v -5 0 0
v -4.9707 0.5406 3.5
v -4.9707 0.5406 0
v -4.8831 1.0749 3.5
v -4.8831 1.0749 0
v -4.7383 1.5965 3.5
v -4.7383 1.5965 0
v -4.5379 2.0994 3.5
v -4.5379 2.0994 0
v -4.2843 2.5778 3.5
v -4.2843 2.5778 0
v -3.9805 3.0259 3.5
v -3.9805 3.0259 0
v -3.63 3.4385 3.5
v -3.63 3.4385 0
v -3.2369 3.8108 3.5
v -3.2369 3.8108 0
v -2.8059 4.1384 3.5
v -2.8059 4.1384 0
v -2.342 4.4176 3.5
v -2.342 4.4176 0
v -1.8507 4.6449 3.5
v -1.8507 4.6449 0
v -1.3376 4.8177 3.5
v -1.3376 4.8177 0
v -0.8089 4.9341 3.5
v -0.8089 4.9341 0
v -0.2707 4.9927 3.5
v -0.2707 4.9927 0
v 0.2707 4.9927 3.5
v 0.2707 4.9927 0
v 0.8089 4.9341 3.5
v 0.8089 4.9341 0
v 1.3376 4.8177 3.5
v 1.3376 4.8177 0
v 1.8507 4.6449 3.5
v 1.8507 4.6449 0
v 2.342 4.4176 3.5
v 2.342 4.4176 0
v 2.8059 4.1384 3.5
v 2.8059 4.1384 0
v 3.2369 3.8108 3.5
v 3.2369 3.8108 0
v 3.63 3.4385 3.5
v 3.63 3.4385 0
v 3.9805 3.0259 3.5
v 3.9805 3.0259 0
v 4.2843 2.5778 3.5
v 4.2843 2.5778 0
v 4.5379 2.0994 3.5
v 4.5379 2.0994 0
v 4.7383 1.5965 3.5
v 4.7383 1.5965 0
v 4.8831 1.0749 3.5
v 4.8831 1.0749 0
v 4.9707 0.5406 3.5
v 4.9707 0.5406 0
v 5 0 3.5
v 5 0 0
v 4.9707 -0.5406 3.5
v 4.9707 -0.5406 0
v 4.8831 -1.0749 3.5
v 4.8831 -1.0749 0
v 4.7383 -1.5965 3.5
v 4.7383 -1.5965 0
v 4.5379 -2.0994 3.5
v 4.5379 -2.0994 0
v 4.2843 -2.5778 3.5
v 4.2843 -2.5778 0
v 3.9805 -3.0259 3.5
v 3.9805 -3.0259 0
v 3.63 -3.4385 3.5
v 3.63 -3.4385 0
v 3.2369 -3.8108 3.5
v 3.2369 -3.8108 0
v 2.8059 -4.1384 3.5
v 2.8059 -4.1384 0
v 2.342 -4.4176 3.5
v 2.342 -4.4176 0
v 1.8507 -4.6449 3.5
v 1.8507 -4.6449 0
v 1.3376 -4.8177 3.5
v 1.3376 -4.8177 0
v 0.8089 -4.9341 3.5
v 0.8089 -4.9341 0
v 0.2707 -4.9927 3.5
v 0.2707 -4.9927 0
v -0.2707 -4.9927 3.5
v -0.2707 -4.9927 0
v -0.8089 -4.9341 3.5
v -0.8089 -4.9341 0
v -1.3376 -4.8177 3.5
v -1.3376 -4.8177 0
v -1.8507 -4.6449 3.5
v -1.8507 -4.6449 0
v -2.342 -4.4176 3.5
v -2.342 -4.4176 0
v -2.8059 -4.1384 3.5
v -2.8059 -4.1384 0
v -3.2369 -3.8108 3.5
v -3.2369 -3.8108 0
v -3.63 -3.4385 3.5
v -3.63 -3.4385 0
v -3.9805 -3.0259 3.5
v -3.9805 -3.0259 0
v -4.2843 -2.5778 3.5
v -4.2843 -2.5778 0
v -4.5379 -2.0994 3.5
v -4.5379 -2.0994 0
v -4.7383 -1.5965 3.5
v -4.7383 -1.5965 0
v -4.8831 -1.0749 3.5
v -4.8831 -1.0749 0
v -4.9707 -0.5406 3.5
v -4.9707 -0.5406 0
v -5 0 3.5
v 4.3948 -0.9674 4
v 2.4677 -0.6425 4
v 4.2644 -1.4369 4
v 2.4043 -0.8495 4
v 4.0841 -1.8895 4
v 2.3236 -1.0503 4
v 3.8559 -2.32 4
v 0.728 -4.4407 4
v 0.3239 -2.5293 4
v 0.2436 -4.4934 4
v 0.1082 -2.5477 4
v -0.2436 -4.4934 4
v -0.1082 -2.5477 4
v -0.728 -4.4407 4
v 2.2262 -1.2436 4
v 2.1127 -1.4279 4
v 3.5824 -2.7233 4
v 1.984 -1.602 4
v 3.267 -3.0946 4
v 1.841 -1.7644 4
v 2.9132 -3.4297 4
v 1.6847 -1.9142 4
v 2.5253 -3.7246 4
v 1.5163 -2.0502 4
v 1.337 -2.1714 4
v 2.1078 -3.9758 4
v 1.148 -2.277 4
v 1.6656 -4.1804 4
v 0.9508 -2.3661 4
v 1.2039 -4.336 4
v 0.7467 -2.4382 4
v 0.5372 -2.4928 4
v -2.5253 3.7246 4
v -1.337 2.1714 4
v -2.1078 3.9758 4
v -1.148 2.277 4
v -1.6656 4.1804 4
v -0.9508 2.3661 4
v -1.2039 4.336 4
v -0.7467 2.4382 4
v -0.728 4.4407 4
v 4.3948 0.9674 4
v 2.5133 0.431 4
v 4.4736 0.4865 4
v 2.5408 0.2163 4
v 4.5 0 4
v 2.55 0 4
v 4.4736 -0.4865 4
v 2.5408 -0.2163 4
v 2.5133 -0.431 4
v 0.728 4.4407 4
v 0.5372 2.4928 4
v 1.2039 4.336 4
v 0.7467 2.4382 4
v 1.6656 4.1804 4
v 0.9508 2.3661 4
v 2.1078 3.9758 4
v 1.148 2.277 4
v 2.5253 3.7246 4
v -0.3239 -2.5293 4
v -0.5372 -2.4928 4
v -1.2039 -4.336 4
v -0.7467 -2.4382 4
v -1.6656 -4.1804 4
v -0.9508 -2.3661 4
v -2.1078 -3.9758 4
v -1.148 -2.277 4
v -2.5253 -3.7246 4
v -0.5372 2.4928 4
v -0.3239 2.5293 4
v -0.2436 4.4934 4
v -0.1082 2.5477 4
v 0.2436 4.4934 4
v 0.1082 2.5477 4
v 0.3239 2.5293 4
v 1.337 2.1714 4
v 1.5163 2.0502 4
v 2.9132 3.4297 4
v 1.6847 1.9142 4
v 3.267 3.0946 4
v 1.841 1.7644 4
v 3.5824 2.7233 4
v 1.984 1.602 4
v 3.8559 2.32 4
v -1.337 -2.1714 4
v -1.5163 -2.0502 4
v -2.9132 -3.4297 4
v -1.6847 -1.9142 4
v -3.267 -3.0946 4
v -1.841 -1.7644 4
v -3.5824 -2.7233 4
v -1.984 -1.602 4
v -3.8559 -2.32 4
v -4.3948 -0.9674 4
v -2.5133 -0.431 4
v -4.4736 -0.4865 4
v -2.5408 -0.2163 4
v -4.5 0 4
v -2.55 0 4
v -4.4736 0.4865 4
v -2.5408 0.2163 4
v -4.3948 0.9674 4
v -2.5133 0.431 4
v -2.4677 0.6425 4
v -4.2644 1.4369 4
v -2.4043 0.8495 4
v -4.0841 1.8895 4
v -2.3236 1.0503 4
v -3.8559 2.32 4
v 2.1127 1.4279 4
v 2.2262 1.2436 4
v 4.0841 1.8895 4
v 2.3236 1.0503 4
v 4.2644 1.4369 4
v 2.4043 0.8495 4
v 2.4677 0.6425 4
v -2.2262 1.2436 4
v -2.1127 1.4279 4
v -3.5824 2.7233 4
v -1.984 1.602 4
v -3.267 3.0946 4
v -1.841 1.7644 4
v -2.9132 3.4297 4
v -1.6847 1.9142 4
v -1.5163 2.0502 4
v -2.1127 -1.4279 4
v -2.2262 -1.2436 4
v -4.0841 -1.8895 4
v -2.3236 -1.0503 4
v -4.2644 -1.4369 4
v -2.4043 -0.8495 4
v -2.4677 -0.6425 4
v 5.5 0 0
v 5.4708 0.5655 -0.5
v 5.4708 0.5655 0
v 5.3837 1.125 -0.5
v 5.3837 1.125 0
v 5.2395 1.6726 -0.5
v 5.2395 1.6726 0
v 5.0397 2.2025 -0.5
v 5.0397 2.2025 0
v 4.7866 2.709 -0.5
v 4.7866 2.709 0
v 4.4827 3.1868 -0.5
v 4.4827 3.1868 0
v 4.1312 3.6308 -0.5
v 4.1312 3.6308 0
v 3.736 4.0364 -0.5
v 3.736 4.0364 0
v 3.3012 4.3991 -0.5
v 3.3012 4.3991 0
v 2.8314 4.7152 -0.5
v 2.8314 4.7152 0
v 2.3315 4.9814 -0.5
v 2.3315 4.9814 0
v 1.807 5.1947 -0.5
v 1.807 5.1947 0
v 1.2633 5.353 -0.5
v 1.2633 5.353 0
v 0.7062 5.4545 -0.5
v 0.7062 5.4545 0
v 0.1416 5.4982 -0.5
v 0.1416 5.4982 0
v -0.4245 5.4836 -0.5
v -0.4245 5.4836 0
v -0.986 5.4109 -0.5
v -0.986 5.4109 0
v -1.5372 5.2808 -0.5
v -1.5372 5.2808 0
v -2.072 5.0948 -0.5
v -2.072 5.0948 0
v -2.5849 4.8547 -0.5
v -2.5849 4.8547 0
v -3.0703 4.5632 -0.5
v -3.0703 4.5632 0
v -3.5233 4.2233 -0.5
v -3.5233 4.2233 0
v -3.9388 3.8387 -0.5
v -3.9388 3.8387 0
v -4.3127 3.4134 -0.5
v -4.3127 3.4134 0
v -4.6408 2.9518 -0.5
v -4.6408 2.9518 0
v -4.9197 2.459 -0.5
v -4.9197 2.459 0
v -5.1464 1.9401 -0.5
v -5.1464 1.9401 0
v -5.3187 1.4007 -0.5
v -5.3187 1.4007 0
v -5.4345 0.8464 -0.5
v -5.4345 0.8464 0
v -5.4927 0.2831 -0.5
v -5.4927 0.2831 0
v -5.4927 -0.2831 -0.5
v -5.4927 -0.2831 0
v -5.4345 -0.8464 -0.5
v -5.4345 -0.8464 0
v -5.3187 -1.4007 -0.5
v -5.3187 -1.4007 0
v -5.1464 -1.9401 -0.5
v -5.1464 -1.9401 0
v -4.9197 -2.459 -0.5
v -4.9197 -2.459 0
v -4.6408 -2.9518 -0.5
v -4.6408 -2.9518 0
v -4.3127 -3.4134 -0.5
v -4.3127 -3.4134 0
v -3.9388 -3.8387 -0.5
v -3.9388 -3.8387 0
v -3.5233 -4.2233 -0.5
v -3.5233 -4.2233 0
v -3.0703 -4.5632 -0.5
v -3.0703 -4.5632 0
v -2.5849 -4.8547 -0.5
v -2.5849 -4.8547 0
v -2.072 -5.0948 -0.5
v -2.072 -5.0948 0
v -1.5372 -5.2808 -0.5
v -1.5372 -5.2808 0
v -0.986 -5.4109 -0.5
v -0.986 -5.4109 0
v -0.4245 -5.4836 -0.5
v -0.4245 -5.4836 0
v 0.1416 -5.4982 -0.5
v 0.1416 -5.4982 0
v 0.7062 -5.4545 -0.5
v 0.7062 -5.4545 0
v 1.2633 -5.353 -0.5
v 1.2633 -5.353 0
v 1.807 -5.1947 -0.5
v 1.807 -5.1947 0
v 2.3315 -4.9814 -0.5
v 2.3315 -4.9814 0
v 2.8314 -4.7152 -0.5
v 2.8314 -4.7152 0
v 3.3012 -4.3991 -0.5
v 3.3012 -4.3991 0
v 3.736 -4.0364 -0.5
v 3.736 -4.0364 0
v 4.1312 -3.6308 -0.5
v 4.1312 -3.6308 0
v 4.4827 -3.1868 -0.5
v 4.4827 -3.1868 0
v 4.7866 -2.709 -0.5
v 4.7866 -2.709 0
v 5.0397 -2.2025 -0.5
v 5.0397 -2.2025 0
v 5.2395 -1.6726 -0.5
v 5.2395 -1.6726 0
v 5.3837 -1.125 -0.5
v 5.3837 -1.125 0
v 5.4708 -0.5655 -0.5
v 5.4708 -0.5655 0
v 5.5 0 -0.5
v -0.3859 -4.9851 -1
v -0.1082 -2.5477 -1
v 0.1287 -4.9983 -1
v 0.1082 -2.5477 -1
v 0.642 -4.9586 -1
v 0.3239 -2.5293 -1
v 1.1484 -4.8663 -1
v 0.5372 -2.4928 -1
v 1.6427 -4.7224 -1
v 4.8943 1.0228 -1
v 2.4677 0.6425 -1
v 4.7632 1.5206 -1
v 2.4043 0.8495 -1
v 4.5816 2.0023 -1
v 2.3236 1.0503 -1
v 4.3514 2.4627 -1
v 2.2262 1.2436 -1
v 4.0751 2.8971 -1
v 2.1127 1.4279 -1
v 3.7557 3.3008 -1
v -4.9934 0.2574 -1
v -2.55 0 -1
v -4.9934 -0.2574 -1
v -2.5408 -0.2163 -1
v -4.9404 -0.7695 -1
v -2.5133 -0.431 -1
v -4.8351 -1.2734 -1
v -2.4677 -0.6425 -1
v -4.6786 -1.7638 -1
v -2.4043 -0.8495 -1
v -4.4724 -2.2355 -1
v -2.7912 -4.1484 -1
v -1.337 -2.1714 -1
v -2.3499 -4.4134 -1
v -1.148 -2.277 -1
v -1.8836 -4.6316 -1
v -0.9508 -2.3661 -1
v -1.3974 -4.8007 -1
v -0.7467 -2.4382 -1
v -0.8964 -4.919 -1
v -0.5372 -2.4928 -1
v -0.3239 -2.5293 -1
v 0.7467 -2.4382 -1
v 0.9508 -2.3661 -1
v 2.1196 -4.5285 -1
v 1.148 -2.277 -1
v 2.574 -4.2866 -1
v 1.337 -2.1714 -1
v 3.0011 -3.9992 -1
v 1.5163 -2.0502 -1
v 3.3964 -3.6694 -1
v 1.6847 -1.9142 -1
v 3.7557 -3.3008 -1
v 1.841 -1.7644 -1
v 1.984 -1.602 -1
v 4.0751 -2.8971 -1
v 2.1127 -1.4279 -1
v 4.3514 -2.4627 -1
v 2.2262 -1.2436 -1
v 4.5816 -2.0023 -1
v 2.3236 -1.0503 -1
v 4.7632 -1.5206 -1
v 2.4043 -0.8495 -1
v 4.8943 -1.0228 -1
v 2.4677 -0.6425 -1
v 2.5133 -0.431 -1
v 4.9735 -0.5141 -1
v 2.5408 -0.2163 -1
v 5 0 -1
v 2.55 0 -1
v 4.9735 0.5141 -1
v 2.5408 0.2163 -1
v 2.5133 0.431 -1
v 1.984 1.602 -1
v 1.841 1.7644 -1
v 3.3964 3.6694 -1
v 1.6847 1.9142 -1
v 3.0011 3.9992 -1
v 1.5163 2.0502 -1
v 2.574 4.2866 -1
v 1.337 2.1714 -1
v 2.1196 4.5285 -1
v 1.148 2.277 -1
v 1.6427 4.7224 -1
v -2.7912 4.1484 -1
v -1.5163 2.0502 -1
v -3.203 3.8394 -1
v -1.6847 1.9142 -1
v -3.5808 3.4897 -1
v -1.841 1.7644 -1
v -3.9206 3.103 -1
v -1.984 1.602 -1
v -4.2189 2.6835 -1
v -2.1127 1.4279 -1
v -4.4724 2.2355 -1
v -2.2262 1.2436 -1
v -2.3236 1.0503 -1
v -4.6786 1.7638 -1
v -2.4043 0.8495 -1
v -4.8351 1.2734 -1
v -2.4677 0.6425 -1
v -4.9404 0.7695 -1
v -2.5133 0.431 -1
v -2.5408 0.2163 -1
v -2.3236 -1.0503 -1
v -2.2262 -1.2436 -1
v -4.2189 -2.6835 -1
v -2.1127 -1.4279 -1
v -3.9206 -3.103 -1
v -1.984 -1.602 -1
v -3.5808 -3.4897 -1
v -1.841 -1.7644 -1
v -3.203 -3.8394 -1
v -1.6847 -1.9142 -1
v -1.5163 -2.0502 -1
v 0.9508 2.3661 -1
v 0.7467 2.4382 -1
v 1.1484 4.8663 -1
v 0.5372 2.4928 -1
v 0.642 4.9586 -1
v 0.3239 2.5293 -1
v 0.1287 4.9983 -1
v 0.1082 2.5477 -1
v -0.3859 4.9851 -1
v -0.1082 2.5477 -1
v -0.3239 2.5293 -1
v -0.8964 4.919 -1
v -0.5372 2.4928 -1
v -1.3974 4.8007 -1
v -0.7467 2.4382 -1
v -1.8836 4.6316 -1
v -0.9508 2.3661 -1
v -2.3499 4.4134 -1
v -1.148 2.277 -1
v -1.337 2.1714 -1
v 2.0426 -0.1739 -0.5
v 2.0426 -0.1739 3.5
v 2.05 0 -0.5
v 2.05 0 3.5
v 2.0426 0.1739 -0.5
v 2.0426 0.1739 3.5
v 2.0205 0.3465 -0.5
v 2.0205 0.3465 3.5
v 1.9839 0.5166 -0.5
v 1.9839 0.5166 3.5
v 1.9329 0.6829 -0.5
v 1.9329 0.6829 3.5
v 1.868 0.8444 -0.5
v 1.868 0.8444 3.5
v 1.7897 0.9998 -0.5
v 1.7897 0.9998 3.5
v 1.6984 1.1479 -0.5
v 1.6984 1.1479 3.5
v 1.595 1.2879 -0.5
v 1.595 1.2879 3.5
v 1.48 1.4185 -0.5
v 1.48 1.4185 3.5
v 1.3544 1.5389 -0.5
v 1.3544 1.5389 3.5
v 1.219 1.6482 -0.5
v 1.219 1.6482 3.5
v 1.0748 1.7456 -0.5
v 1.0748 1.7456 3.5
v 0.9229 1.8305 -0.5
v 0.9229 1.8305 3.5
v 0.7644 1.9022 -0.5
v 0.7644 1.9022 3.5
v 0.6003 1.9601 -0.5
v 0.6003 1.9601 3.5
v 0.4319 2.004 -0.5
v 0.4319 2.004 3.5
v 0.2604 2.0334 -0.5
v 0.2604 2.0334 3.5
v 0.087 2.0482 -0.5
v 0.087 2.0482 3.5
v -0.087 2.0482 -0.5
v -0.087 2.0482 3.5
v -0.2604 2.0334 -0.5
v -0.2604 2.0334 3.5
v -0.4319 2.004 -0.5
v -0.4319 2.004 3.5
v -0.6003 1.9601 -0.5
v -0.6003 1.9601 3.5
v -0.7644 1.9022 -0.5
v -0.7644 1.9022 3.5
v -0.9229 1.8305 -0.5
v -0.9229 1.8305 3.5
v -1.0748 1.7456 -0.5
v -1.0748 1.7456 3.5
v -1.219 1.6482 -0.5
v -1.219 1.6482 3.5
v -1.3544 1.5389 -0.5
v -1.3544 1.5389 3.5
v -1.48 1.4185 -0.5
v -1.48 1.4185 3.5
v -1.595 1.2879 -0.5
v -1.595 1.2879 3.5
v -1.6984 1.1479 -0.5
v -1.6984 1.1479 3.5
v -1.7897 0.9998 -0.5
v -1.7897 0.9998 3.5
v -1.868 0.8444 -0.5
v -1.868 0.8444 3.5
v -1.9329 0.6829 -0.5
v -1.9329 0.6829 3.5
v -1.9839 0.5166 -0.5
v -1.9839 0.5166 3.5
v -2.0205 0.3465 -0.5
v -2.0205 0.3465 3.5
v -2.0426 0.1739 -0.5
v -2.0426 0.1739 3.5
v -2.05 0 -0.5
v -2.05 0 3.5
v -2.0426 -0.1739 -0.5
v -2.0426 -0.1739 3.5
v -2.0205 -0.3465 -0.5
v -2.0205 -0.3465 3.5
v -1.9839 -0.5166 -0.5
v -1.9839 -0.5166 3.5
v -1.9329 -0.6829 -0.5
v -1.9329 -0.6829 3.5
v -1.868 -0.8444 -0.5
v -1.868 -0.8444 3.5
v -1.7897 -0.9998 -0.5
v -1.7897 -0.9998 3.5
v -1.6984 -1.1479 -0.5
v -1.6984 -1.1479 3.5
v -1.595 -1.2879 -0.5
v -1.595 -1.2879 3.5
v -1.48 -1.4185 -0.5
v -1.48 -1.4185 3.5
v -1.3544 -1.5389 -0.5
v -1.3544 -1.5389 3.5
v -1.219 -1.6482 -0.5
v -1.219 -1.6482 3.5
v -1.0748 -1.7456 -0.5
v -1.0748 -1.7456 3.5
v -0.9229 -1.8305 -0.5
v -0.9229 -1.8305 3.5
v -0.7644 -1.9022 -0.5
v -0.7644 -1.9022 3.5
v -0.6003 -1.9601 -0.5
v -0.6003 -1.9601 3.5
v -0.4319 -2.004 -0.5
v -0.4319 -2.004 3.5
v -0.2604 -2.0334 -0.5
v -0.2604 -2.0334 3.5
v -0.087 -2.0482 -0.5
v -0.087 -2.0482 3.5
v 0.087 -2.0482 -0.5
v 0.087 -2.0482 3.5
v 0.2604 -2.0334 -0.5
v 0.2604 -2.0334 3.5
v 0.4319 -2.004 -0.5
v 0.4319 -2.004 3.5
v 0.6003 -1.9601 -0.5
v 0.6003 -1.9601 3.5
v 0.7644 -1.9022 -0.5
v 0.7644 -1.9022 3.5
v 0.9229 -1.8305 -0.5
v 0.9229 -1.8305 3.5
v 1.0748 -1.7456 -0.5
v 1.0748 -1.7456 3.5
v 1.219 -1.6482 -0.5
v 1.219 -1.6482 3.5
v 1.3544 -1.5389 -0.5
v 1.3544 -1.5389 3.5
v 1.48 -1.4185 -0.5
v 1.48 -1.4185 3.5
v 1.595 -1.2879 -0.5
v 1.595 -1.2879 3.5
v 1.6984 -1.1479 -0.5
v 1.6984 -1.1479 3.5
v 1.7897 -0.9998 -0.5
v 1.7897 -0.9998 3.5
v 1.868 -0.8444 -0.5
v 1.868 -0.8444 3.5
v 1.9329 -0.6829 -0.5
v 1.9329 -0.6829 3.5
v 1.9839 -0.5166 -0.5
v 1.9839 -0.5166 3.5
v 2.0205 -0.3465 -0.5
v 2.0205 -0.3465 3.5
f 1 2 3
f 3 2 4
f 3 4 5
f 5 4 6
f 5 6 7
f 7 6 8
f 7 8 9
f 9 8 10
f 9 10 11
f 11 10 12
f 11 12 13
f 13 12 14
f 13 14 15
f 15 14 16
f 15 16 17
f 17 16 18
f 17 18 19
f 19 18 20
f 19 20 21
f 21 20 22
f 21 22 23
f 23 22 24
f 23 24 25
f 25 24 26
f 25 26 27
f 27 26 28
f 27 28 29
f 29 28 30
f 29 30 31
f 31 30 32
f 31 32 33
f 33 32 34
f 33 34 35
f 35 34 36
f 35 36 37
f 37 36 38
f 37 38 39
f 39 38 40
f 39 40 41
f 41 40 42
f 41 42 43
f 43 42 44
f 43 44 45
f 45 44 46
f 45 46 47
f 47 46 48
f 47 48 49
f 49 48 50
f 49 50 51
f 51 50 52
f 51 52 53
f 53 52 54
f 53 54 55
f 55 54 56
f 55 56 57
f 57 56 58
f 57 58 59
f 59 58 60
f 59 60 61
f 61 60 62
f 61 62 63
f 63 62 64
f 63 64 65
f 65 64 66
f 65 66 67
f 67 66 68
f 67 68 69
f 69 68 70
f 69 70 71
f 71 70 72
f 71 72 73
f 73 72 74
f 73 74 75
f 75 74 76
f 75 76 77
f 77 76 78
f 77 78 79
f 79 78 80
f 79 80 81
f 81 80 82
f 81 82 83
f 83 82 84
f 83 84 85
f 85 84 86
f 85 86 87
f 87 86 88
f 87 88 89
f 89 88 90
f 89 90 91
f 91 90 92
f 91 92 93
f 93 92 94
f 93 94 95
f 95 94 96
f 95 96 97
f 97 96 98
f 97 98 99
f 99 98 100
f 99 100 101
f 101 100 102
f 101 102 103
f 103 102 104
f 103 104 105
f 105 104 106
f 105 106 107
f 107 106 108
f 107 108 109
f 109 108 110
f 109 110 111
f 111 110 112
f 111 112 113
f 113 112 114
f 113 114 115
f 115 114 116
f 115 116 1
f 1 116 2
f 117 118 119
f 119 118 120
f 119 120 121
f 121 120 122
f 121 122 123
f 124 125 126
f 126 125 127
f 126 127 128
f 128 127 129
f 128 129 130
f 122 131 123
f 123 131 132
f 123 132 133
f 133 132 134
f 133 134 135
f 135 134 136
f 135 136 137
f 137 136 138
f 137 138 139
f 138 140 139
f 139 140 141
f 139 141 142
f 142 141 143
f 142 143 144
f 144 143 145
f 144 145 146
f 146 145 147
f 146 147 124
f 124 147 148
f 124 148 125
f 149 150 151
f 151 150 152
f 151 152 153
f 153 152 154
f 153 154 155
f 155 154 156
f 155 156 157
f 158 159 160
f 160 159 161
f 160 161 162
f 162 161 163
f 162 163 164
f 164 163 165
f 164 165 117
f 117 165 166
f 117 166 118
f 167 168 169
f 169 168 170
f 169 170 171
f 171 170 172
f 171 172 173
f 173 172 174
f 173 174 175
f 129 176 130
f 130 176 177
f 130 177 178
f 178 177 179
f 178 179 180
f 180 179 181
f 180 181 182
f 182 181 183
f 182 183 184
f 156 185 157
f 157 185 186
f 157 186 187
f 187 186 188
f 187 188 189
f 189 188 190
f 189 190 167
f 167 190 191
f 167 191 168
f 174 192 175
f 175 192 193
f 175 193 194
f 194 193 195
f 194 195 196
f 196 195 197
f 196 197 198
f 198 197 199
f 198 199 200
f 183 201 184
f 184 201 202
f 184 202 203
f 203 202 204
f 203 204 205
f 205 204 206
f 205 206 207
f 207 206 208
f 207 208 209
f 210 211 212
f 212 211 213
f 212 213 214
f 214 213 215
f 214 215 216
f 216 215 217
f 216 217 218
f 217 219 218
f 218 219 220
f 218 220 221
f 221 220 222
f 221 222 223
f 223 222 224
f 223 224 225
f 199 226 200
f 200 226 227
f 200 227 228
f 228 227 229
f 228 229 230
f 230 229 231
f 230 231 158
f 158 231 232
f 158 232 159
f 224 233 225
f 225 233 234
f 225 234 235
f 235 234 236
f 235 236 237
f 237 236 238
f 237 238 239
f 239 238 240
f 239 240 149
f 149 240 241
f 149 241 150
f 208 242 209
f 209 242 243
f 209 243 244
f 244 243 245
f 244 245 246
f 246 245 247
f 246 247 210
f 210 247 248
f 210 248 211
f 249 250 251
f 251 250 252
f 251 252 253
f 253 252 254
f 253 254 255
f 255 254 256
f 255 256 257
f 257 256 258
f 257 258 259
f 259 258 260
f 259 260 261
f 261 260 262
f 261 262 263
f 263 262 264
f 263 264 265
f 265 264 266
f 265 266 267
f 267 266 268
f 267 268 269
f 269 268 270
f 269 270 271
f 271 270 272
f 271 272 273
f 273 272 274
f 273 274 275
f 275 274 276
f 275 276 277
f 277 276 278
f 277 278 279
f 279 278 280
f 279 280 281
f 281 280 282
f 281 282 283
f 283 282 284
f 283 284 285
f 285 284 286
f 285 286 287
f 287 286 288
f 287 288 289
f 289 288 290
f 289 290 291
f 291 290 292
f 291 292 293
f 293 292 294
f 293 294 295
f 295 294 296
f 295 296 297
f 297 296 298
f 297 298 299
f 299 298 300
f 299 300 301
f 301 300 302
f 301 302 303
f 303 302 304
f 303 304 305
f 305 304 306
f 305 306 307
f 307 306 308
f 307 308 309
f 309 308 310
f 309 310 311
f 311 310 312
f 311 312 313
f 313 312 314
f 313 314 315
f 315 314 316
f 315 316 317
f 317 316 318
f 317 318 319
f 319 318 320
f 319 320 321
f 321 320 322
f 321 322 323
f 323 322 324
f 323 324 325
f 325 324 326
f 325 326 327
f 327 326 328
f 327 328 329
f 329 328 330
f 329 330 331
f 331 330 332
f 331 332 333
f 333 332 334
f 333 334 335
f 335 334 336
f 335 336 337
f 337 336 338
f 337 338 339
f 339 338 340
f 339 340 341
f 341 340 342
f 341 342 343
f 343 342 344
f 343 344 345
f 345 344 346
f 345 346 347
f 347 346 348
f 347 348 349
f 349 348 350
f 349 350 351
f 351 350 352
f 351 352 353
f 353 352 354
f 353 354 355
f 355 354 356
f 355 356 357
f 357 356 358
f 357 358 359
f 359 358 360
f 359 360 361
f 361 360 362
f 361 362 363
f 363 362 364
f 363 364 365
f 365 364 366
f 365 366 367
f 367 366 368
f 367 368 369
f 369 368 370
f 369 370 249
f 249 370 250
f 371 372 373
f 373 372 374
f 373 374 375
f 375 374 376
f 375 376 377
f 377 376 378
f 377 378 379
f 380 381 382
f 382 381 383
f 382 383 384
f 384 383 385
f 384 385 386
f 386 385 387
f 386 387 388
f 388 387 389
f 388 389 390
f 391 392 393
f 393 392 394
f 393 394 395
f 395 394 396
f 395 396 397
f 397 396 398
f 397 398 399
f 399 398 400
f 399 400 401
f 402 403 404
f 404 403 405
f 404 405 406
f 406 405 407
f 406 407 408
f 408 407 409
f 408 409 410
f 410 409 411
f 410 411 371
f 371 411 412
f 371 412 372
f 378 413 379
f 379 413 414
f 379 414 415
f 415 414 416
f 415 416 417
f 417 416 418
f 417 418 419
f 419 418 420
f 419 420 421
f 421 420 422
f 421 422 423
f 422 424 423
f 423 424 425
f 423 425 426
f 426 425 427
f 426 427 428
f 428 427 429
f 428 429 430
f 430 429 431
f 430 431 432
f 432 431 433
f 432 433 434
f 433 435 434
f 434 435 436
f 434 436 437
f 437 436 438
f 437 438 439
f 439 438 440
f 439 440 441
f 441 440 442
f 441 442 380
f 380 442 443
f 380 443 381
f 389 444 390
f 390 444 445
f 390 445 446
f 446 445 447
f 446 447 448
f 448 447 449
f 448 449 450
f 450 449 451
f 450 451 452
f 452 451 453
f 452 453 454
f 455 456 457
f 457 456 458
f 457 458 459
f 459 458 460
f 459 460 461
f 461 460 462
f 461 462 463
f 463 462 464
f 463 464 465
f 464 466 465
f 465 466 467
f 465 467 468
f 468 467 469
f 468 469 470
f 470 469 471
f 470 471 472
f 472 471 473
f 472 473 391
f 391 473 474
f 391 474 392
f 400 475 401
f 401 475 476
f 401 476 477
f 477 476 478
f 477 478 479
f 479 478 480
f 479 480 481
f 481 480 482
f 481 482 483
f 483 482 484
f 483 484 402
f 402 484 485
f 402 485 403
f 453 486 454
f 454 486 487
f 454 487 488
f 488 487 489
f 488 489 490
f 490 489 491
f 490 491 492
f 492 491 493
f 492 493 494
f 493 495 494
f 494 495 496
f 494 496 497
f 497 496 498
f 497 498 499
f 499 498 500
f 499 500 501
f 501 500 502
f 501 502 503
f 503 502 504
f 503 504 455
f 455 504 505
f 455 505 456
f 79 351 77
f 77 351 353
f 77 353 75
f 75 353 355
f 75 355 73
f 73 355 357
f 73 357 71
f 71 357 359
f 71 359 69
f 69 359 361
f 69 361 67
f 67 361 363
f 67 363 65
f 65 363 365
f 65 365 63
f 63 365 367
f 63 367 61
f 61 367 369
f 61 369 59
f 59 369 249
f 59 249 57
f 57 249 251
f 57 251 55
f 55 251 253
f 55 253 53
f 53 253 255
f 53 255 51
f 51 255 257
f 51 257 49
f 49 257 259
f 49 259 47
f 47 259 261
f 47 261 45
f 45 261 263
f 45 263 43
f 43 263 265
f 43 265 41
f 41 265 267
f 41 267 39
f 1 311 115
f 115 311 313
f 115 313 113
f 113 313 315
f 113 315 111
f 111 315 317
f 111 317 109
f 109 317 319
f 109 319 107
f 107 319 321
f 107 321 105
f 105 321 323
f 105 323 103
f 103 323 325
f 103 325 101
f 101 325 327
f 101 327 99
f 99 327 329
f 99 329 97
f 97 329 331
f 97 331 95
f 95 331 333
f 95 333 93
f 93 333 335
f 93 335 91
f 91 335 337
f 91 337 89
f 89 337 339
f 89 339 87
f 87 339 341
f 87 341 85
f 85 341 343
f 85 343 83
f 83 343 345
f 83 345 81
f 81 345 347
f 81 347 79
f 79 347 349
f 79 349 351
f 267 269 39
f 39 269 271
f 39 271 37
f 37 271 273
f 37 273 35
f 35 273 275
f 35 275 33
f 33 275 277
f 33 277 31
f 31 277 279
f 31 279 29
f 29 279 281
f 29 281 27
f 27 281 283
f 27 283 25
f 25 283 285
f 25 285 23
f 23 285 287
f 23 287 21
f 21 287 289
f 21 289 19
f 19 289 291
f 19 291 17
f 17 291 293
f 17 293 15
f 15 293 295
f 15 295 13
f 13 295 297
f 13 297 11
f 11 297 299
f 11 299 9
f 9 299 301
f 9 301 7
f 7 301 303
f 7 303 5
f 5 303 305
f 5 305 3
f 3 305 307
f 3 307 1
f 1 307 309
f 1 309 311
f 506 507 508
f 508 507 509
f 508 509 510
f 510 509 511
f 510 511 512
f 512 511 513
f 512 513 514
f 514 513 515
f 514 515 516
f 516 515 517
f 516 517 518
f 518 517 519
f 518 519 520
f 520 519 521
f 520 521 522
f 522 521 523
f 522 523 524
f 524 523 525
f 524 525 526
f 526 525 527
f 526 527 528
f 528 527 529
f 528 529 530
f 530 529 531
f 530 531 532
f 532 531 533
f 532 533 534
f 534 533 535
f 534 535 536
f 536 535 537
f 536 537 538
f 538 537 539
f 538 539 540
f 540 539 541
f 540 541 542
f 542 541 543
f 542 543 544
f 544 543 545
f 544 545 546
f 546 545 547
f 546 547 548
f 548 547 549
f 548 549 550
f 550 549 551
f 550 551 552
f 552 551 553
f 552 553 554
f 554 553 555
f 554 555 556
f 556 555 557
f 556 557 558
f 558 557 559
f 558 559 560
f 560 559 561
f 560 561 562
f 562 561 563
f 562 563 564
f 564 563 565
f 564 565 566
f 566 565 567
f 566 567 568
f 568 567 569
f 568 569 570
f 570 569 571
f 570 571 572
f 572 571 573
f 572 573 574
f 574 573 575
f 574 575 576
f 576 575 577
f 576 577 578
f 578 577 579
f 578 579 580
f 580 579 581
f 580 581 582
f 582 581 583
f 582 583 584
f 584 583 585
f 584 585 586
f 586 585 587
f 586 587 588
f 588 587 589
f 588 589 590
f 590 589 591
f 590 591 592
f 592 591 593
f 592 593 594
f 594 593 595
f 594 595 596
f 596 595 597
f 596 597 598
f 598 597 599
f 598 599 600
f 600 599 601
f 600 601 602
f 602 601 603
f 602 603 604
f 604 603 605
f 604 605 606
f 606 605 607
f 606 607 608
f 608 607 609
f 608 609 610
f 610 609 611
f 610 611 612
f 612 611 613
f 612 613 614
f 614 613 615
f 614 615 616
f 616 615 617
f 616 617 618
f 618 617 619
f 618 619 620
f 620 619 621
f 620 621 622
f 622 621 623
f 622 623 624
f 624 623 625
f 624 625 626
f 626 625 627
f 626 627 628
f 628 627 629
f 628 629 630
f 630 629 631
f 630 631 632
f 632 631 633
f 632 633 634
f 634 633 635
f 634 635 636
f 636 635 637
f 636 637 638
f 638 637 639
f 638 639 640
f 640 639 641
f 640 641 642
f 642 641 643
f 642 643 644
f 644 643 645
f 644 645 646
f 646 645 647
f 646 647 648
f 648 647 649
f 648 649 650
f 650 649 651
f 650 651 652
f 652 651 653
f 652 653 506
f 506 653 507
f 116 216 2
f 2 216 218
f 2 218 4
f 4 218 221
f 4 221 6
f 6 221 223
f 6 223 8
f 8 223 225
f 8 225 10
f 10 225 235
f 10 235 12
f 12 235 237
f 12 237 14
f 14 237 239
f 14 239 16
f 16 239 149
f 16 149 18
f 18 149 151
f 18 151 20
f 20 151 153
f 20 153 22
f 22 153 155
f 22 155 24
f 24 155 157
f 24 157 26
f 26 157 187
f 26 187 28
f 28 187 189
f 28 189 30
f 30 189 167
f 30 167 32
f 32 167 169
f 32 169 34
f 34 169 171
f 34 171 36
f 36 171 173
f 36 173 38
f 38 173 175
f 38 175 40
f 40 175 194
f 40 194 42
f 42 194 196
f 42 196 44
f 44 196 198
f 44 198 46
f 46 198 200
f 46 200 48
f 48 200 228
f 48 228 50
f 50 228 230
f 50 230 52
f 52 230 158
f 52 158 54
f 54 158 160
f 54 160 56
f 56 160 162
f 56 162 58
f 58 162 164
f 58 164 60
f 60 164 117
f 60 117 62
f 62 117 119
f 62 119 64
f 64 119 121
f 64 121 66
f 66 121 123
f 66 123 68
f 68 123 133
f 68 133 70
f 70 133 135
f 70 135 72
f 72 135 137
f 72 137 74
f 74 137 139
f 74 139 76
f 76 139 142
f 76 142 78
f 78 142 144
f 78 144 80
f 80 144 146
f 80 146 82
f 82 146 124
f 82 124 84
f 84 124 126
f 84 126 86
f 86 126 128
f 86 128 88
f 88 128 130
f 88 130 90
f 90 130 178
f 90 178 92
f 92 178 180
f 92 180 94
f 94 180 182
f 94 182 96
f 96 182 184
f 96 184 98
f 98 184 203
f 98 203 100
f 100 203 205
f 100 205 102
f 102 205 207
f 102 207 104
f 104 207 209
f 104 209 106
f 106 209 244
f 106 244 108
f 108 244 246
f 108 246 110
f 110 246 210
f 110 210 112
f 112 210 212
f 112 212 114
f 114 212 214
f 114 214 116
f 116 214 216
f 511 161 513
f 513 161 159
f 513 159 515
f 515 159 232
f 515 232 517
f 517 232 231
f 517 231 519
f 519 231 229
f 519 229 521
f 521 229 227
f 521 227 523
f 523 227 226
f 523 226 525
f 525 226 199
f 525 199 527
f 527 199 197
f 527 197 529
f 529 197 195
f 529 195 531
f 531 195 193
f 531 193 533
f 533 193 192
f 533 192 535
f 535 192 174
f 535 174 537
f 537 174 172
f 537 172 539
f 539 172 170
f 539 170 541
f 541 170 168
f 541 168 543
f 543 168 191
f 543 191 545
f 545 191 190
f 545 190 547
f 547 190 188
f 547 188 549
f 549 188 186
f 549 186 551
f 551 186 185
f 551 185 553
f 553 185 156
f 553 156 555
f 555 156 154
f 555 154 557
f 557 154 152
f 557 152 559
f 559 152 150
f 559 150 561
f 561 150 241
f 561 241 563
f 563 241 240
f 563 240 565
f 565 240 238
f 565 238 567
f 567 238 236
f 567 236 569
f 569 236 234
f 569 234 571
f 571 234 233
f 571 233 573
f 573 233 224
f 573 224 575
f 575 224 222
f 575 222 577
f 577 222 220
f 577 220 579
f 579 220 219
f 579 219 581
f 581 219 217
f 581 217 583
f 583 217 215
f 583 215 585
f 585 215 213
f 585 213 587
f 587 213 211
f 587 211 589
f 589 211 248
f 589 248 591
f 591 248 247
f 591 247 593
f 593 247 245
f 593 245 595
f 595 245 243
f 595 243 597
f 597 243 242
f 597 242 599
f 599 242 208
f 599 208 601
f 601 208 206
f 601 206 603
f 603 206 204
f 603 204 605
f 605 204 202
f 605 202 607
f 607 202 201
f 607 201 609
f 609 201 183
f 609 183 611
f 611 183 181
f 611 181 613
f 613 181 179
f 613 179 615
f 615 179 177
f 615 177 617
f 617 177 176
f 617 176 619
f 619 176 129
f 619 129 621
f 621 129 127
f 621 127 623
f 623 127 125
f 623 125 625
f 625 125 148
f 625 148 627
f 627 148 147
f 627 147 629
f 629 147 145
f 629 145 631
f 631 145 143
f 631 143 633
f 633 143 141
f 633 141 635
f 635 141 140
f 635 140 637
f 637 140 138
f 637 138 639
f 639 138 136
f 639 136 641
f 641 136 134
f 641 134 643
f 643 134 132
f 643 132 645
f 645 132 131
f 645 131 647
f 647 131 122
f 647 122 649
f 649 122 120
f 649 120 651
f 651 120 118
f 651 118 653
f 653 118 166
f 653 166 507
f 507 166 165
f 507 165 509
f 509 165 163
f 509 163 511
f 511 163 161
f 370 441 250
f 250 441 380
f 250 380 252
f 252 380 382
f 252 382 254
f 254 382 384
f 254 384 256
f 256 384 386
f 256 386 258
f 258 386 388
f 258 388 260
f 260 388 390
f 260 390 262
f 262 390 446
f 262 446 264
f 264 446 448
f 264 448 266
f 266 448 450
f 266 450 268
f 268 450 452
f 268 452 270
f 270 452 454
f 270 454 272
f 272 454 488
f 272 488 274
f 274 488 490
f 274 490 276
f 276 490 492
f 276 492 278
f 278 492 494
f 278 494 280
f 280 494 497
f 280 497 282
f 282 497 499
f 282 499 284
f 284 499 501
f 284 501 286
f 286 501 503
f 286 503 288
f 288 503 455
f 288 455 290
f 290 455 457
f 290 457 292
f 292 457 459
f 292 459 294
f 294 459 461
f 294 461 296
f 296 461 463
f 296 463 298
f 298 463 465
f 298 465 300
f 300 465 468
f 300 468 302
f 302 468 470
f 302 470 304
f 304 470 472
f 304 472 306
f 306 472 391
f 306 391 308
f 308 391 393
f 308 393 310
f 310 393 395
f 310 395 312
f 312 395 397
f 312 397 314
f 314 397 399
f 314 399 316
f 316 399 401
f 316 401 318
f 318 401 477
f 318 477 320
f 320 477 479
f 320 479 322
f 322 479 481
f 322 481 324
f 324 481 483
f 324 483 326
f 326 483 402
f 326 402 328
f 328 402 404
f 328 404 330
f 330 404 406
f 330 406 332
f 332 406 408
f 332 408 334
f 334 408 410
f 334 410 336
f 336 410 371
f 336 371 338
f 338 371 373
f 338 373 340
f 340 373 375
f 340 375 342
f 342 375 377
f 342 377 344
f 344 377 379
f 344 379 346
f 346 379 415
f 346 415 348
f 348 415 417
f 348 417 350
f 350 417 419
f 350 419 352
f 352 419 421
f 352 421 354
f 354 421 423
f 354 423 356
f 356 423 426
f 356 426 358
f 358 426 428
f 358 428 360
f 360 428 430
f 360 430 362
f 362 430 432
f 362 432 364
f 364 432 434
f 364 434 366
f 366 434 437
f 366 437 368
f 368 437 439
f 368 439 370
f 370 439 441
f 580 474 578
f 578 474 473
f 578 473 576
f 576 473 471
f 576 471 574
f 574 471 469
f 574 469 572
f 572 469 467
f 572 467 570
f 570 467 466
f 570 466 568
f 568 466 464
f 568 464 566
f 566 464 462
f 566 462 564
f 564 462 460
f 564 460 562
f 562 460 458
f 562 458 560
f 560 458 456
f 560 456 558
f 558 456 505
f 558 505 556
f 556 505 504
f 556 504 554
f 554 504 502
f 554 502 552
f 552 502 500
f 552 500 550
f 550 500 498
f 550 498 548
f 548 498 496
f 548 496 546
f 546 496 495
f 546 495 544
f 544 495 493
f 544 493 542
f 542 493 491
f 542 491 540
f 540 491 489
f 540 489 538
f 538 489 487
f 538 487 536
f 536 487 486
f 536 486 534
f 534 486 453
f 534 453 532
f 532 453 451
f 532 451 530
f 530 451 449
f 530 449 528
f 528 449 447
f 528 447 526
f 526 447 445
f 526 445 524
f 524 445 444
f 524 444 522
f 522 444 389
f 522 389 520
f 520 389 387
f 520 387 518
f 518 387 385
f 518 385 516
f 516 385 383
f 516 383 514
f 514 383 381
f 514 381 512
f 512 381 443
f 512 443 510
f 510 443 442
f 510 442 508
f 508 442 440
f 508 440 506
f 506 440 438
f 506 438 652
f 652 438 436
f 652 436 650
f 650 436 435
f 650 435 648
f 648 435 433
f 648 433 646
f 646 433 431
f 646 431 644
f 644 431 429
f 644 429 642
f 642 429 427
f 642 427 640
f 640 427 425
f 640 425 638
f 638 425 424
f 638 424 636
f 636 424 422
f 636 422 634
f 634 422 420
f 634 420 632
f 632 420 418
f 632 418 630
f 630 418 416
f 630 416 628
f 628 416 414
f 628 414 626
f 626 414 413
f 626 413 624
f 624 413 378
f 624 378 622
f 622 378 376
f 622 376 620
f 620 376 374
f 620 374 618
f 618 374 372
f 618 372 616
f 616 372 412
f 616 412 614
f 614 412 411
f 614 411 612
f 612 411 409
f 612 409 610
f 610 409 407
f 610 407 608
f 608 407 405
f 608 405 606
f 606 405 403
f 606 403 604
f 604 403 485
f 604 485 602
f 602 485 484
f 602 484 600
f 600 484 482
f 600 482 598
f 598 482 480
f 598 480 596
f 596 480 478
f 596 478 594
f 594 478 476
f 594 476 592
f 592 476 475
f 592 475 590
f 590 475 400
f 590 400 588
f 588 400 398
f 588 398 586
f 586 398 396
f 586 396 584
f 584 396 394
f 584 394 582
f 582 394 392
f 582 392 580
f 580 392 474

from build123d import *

# Parameters (mm, degrees)
SKETCH1_R           = 5
BOSS_EXTRUDE1_DEPTH = 4
SKETCH2_R           = 5.5
BOSS_EXTRUDE2_DEPTH = 1
SKETCH3_R           = 2.05
CUT_EXTRUDE1_DEPTH  = 6
CHAMFER1_SIZE       = 0.5


with BuildPart() as part:
    # Sketch1 → Boss-Extrude1 (new body)
    with BuildSketch(Plane.XY):
        Circle(SKETCH1_R)
    extrude(amount=BOSS_EXTRUDE1_DEPTH)

    # Sketch2 → Boss-Extrude2 (add)
    with BuildSketch(Plane.XY):
        Circle(SKETCH2_R)
    extrude(amount=-BOSS_EXTRUDE2_DEPTH)

    # Sketch3 → Cut-Extrude1 (cut, through all)
    with BuildSketch(Plane.XY.offset(4)):
        Circle(SKETCH3_R)
    extrude(amount=-CUT_EXTRUDE1_DEPTH, mode=Mode.SUBTRACT)

    # Chamfer1
    chamfer1_edges = [part.edges().sort_by_distance(p)[0] for p in [
        (-2.05, 0, -1),
        (-2.05, 0, 4),
        (-5, 0, 4),
        (-5.5, 0, -1),
    ]]
    chamfer(chamfer1_edges, length=CHAMFER1_SIZE)


solid = part.part
